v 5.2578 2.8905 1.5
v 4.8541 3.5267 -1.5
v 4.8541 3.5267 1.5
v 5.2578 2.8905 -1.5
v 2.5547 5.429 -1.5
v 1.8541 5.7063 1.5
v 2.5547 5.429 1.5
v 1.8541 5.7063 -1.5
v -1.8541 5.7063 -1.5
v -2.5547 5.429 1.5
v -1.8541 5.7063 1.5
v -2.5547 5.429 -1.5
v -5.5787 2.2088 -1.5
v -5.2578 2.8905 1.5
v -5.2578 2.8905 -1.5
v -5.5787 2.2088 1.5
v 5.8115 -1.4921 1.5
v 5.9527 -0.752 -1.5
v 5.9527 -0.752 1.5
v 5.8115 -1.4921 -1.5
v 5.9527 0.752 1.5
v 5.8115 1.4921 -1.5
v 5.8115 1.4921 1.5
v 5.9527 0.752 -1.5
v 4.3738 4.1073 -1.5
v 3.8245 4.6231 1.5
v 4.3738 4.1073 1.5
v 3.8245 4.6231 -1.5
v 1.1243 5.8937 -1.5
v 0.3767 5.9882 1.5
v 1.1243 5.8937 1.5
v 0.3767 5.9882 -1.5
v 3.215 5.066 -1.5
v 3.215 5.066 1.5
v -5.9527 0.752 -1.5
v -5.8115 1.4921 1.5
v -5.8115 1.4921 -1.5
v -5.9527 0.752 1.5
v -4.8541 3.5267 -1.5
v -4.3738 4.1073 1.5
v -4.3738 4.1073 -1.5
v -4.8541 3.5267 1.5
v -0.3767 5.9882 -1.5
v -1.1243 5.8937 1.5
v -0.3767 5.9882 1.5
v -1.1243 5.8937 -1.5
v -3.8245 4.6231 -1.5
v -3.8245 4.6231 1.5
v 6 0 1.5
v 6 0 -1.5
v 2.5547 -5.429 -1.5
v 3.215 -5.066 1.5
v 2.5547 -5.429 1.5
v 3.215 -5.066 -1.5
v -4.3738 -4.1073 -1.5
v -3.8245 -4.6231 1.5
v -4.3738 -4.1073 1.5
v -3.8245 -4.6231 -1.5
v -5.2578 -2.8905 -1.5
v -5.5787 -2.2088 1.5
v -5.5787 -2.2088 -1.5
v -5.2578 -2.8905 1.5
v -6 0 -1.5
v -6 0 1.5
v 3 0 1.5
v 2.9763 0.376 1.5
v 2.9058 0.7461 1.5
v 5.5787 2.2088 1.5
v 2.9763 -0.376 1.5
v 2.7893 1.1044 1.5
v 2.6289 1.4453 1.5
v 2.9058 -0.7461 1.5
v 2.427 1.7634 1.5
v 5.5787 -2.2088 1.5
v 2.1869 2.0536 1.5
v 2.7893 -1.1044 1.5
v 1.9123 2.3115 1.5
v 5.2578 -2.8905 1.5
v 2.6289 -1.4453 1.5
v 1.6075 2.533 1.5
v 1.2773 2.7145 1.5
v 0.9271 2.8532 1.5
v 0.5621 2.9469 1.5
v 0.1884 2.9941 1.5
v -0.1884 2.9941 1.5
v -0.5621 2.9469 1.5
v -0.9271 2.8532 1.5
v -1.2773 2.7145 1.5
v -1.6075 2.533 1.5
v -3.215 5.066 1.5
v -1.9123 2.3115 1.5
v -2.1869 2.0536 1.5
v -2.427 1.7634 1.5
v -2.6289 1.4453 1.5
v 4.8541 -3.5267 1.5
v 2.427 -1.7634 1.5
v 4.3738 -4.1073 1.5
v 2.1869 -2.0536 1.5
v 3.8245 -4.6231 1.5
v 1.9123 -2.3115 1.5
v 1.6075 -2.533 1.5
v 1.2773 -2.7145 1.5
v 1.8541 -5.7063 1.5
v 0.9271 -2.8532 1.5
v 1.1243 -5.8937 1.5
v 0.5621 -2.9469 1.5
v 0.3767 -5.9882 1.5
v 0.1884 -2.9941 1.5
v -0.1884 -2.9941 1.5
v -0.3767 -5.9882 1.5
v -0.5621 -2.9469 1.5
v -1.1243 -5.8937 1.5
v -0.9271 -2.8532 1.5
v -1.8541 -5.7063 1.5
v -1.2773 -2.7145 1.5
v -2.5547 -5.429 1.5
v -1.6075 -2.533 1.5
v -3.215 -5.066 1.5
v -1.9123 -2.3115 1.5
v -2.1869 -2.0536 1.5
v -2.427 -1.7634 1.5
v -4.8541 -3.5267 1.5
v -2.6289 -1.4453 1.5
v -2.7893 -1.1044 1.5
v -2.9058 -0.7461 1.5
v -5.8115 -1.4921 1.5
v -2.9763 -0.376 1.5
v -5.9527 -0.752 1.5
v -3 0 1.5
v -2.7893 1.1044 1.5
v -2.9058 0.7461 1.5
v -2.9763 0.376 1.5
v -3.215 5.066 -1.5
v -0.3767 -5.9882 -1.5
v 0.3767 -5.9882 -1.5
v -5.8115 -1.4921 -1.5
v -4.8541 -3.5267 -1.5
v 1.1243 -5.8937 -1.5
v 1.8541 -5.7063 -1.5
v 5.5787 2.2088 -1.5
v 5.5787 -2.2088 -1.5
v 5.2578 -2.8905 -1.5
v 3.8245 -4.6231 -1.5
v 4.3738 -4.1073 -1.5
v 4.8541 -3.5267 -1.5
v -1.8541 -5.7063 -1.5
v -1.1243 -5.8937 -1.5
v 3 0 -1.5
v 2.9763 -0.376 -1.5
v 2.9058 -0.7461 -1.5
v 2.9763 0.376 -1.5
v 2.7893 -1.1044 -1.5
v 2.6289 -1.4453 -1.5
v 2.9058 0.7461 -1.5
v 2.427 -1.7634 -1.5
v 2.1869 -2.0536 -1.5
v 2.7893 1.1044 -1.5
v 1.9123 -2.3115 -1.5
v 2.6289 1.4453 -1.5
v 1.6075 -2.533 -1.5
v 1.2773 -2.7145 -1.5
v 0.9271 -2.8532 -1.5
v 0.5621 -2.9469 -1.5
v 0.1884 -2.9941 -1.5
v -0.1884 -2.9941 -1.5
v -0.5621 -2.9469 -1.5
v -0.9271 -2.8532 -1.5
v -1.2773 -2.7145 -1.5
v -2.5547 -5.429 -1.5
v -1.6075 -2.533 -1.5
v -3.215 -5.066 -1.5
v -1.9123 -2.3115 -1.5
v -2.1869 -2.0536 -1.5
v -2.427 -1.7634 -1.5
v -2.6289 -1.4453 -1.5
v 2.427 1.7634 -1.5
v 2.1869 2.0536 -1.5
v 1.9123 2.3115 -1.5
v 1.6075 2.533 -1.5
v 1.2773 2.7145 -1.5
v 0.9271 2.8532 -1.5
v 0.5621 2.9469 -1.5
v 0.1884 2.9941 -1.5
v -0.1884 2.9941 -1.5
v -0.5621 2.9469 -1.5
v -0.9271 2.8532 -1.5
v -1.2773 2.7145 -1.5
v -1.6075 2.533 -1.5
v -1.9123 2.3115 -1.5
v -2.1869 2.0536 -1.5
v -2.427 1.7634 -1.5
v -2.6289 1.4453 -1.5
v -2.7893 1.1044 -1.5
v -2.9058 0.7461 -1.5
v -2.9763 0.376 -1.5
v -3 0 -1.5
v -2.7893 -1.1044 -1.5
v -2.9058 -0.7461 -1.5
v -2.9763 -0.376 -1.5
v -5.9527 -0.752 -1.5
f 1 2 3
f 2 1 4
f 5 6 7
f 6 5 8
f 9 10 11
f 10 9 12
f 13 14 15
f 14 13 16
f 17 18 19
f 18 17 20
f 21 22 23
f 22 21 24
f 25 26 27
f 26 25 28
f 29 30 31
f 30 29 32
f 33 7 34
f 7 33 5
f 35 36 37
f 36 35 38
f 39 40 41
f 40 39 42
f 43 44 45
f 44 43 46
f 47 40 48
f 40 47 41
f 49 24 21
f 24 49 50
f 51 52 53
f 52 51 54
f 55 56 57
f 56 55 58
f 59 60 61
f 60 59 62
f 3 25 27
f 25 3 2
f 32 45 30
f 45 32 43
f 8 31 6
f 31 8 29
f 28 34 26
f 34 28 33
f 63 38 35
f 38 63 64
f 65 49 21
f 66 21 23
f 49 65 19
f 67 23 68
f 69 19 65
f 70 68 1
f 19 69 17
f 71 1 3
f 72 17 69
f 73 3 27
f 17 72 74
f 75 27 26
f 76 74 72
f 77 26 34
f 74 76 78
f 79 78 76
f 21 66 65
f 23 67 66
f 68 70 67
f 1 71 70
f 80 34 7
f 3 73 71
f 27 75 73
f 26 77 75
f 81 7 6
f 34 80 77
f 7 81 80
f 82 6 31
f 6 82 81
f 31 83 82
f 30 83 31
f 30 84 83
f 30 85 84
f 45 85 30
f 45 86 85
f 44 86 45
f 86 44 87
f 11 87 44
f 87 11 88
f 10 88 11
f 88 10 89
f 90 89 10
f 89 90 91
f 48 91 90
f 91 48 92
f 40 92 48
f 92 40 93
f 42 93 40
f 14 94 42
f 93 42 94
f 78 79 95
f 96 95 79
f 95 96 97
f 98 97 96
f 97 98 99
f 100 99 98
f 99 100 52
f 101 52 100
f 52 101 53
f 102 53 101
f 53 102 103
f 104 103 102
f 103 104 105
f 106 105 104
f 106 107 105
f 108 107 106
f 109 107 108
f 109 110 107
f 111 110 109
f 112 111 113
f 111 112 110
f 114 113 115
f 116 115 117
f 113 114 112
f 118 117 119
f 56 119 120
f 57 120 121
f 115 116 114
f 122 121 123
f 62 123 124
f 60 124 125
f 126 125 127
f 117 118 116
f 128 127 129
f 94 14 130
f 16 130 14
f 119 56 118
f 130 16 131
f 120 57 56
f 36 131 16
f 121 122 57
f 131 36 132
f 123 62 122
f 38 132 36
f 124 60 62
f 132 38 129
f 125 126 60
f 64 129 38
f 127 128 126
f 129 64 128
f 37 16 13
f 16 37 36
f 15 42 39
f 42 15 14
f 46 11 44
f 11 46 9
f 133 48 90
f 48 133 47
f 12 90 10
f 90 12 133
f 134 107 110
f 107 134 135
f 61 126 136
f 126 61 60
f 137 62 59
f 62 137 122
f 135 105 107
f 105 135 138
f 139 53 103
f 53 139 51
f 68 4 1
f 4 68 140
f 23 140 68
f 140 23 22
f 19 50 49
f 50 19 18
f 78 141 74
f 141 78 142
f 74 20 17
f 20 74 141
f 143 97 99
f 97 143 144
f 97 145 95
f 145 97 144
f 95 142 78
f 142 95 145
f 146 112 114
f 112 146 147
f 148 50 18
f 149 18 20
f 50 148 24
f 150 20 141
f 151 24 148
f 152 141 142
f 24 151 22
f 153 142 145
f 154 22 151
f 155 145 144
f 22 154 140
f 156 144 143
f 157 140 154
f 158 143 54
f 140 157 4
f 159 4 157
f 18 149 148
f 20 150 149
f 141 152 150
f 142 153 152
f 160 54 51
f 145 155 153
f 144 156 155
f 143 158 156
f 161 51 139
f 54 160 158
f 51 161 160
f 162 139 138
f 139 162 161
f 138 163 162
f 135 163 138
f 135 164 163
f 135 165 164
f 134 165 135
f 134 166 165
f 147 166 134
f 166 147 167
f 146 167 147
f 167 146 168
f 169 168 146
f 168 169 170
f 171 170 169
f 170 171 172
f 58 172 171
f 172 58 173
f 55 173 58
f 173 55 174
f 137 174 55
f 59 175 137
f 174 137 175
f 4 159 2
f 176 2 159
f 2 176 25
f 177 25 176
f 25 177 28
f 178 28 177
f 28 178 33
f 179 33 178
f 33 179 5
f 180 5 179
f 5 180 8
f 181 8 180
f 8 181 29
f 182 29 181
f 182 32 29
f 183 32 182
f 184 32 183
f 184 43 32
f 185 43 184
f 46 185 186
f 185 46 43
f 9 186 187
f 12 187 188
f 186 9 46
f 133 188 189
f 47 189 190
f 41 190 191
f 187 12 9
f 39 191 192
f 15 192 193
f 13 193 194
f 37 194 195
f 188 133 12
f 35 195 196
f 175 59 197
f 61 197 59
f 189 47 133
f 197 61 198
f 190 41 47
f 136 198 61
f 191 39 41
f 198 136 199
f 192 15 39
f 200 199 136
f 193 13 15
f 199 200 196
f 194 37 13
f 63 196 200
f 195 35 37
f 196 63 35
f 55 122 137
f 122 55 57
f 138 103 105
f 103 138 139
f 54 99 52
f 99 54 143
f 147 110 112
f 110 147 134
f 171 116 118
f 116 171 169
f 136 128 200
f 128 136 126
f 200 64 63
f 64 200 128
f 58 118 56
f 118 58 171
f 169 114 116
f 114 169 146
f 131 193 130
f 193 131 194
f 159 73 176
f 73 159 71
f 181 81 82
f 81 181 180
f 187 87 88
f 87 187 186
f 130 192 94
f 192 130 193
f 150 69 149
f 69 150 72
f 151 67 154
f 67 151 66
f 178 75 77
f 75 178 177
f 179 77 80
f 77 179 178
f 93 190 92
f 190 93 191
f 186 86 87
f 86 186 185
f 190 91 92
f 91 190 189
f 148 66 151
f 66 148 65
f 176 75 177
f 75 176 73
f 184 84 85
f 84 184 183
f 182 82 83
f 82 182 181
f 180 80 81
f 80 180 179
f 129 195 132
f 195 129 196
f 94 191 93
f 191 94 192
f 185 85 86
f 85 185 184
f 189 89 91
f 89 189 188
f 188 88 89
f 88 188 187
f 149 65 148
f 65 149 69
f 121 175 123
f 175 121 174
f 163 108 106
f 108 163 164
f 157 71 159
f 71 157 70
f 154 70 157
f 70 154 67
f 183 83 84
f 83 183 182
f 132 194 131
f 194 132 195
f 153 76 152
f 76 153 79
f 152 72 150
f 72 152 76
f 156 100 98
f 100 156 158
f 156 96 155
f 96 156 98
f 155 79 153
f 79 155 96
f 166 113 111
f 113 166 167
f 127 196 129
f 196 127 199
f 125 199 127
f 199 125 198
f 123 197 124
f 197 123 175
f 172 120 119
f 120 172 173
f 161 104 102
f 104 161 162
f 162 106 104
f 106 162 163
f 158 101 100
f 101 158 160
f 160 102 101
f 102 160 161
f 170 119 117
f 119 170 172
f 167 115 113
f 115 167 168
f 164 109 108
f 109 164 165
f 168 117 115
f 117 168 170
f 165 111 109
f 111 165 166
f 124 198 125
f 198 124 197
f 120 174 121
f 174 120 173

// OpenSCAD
$fn = 50;


difference() {
	union() {
		translate(v = [0, 0, -1.5000000000]) {
			cylinder(h = 3, r = 6.0000000000);
		}
	}
	union() {
		translate(v = [0, 0, -100.0000000000]) {
			cylinder(h = 200, r = 3);
		}
	}
}
